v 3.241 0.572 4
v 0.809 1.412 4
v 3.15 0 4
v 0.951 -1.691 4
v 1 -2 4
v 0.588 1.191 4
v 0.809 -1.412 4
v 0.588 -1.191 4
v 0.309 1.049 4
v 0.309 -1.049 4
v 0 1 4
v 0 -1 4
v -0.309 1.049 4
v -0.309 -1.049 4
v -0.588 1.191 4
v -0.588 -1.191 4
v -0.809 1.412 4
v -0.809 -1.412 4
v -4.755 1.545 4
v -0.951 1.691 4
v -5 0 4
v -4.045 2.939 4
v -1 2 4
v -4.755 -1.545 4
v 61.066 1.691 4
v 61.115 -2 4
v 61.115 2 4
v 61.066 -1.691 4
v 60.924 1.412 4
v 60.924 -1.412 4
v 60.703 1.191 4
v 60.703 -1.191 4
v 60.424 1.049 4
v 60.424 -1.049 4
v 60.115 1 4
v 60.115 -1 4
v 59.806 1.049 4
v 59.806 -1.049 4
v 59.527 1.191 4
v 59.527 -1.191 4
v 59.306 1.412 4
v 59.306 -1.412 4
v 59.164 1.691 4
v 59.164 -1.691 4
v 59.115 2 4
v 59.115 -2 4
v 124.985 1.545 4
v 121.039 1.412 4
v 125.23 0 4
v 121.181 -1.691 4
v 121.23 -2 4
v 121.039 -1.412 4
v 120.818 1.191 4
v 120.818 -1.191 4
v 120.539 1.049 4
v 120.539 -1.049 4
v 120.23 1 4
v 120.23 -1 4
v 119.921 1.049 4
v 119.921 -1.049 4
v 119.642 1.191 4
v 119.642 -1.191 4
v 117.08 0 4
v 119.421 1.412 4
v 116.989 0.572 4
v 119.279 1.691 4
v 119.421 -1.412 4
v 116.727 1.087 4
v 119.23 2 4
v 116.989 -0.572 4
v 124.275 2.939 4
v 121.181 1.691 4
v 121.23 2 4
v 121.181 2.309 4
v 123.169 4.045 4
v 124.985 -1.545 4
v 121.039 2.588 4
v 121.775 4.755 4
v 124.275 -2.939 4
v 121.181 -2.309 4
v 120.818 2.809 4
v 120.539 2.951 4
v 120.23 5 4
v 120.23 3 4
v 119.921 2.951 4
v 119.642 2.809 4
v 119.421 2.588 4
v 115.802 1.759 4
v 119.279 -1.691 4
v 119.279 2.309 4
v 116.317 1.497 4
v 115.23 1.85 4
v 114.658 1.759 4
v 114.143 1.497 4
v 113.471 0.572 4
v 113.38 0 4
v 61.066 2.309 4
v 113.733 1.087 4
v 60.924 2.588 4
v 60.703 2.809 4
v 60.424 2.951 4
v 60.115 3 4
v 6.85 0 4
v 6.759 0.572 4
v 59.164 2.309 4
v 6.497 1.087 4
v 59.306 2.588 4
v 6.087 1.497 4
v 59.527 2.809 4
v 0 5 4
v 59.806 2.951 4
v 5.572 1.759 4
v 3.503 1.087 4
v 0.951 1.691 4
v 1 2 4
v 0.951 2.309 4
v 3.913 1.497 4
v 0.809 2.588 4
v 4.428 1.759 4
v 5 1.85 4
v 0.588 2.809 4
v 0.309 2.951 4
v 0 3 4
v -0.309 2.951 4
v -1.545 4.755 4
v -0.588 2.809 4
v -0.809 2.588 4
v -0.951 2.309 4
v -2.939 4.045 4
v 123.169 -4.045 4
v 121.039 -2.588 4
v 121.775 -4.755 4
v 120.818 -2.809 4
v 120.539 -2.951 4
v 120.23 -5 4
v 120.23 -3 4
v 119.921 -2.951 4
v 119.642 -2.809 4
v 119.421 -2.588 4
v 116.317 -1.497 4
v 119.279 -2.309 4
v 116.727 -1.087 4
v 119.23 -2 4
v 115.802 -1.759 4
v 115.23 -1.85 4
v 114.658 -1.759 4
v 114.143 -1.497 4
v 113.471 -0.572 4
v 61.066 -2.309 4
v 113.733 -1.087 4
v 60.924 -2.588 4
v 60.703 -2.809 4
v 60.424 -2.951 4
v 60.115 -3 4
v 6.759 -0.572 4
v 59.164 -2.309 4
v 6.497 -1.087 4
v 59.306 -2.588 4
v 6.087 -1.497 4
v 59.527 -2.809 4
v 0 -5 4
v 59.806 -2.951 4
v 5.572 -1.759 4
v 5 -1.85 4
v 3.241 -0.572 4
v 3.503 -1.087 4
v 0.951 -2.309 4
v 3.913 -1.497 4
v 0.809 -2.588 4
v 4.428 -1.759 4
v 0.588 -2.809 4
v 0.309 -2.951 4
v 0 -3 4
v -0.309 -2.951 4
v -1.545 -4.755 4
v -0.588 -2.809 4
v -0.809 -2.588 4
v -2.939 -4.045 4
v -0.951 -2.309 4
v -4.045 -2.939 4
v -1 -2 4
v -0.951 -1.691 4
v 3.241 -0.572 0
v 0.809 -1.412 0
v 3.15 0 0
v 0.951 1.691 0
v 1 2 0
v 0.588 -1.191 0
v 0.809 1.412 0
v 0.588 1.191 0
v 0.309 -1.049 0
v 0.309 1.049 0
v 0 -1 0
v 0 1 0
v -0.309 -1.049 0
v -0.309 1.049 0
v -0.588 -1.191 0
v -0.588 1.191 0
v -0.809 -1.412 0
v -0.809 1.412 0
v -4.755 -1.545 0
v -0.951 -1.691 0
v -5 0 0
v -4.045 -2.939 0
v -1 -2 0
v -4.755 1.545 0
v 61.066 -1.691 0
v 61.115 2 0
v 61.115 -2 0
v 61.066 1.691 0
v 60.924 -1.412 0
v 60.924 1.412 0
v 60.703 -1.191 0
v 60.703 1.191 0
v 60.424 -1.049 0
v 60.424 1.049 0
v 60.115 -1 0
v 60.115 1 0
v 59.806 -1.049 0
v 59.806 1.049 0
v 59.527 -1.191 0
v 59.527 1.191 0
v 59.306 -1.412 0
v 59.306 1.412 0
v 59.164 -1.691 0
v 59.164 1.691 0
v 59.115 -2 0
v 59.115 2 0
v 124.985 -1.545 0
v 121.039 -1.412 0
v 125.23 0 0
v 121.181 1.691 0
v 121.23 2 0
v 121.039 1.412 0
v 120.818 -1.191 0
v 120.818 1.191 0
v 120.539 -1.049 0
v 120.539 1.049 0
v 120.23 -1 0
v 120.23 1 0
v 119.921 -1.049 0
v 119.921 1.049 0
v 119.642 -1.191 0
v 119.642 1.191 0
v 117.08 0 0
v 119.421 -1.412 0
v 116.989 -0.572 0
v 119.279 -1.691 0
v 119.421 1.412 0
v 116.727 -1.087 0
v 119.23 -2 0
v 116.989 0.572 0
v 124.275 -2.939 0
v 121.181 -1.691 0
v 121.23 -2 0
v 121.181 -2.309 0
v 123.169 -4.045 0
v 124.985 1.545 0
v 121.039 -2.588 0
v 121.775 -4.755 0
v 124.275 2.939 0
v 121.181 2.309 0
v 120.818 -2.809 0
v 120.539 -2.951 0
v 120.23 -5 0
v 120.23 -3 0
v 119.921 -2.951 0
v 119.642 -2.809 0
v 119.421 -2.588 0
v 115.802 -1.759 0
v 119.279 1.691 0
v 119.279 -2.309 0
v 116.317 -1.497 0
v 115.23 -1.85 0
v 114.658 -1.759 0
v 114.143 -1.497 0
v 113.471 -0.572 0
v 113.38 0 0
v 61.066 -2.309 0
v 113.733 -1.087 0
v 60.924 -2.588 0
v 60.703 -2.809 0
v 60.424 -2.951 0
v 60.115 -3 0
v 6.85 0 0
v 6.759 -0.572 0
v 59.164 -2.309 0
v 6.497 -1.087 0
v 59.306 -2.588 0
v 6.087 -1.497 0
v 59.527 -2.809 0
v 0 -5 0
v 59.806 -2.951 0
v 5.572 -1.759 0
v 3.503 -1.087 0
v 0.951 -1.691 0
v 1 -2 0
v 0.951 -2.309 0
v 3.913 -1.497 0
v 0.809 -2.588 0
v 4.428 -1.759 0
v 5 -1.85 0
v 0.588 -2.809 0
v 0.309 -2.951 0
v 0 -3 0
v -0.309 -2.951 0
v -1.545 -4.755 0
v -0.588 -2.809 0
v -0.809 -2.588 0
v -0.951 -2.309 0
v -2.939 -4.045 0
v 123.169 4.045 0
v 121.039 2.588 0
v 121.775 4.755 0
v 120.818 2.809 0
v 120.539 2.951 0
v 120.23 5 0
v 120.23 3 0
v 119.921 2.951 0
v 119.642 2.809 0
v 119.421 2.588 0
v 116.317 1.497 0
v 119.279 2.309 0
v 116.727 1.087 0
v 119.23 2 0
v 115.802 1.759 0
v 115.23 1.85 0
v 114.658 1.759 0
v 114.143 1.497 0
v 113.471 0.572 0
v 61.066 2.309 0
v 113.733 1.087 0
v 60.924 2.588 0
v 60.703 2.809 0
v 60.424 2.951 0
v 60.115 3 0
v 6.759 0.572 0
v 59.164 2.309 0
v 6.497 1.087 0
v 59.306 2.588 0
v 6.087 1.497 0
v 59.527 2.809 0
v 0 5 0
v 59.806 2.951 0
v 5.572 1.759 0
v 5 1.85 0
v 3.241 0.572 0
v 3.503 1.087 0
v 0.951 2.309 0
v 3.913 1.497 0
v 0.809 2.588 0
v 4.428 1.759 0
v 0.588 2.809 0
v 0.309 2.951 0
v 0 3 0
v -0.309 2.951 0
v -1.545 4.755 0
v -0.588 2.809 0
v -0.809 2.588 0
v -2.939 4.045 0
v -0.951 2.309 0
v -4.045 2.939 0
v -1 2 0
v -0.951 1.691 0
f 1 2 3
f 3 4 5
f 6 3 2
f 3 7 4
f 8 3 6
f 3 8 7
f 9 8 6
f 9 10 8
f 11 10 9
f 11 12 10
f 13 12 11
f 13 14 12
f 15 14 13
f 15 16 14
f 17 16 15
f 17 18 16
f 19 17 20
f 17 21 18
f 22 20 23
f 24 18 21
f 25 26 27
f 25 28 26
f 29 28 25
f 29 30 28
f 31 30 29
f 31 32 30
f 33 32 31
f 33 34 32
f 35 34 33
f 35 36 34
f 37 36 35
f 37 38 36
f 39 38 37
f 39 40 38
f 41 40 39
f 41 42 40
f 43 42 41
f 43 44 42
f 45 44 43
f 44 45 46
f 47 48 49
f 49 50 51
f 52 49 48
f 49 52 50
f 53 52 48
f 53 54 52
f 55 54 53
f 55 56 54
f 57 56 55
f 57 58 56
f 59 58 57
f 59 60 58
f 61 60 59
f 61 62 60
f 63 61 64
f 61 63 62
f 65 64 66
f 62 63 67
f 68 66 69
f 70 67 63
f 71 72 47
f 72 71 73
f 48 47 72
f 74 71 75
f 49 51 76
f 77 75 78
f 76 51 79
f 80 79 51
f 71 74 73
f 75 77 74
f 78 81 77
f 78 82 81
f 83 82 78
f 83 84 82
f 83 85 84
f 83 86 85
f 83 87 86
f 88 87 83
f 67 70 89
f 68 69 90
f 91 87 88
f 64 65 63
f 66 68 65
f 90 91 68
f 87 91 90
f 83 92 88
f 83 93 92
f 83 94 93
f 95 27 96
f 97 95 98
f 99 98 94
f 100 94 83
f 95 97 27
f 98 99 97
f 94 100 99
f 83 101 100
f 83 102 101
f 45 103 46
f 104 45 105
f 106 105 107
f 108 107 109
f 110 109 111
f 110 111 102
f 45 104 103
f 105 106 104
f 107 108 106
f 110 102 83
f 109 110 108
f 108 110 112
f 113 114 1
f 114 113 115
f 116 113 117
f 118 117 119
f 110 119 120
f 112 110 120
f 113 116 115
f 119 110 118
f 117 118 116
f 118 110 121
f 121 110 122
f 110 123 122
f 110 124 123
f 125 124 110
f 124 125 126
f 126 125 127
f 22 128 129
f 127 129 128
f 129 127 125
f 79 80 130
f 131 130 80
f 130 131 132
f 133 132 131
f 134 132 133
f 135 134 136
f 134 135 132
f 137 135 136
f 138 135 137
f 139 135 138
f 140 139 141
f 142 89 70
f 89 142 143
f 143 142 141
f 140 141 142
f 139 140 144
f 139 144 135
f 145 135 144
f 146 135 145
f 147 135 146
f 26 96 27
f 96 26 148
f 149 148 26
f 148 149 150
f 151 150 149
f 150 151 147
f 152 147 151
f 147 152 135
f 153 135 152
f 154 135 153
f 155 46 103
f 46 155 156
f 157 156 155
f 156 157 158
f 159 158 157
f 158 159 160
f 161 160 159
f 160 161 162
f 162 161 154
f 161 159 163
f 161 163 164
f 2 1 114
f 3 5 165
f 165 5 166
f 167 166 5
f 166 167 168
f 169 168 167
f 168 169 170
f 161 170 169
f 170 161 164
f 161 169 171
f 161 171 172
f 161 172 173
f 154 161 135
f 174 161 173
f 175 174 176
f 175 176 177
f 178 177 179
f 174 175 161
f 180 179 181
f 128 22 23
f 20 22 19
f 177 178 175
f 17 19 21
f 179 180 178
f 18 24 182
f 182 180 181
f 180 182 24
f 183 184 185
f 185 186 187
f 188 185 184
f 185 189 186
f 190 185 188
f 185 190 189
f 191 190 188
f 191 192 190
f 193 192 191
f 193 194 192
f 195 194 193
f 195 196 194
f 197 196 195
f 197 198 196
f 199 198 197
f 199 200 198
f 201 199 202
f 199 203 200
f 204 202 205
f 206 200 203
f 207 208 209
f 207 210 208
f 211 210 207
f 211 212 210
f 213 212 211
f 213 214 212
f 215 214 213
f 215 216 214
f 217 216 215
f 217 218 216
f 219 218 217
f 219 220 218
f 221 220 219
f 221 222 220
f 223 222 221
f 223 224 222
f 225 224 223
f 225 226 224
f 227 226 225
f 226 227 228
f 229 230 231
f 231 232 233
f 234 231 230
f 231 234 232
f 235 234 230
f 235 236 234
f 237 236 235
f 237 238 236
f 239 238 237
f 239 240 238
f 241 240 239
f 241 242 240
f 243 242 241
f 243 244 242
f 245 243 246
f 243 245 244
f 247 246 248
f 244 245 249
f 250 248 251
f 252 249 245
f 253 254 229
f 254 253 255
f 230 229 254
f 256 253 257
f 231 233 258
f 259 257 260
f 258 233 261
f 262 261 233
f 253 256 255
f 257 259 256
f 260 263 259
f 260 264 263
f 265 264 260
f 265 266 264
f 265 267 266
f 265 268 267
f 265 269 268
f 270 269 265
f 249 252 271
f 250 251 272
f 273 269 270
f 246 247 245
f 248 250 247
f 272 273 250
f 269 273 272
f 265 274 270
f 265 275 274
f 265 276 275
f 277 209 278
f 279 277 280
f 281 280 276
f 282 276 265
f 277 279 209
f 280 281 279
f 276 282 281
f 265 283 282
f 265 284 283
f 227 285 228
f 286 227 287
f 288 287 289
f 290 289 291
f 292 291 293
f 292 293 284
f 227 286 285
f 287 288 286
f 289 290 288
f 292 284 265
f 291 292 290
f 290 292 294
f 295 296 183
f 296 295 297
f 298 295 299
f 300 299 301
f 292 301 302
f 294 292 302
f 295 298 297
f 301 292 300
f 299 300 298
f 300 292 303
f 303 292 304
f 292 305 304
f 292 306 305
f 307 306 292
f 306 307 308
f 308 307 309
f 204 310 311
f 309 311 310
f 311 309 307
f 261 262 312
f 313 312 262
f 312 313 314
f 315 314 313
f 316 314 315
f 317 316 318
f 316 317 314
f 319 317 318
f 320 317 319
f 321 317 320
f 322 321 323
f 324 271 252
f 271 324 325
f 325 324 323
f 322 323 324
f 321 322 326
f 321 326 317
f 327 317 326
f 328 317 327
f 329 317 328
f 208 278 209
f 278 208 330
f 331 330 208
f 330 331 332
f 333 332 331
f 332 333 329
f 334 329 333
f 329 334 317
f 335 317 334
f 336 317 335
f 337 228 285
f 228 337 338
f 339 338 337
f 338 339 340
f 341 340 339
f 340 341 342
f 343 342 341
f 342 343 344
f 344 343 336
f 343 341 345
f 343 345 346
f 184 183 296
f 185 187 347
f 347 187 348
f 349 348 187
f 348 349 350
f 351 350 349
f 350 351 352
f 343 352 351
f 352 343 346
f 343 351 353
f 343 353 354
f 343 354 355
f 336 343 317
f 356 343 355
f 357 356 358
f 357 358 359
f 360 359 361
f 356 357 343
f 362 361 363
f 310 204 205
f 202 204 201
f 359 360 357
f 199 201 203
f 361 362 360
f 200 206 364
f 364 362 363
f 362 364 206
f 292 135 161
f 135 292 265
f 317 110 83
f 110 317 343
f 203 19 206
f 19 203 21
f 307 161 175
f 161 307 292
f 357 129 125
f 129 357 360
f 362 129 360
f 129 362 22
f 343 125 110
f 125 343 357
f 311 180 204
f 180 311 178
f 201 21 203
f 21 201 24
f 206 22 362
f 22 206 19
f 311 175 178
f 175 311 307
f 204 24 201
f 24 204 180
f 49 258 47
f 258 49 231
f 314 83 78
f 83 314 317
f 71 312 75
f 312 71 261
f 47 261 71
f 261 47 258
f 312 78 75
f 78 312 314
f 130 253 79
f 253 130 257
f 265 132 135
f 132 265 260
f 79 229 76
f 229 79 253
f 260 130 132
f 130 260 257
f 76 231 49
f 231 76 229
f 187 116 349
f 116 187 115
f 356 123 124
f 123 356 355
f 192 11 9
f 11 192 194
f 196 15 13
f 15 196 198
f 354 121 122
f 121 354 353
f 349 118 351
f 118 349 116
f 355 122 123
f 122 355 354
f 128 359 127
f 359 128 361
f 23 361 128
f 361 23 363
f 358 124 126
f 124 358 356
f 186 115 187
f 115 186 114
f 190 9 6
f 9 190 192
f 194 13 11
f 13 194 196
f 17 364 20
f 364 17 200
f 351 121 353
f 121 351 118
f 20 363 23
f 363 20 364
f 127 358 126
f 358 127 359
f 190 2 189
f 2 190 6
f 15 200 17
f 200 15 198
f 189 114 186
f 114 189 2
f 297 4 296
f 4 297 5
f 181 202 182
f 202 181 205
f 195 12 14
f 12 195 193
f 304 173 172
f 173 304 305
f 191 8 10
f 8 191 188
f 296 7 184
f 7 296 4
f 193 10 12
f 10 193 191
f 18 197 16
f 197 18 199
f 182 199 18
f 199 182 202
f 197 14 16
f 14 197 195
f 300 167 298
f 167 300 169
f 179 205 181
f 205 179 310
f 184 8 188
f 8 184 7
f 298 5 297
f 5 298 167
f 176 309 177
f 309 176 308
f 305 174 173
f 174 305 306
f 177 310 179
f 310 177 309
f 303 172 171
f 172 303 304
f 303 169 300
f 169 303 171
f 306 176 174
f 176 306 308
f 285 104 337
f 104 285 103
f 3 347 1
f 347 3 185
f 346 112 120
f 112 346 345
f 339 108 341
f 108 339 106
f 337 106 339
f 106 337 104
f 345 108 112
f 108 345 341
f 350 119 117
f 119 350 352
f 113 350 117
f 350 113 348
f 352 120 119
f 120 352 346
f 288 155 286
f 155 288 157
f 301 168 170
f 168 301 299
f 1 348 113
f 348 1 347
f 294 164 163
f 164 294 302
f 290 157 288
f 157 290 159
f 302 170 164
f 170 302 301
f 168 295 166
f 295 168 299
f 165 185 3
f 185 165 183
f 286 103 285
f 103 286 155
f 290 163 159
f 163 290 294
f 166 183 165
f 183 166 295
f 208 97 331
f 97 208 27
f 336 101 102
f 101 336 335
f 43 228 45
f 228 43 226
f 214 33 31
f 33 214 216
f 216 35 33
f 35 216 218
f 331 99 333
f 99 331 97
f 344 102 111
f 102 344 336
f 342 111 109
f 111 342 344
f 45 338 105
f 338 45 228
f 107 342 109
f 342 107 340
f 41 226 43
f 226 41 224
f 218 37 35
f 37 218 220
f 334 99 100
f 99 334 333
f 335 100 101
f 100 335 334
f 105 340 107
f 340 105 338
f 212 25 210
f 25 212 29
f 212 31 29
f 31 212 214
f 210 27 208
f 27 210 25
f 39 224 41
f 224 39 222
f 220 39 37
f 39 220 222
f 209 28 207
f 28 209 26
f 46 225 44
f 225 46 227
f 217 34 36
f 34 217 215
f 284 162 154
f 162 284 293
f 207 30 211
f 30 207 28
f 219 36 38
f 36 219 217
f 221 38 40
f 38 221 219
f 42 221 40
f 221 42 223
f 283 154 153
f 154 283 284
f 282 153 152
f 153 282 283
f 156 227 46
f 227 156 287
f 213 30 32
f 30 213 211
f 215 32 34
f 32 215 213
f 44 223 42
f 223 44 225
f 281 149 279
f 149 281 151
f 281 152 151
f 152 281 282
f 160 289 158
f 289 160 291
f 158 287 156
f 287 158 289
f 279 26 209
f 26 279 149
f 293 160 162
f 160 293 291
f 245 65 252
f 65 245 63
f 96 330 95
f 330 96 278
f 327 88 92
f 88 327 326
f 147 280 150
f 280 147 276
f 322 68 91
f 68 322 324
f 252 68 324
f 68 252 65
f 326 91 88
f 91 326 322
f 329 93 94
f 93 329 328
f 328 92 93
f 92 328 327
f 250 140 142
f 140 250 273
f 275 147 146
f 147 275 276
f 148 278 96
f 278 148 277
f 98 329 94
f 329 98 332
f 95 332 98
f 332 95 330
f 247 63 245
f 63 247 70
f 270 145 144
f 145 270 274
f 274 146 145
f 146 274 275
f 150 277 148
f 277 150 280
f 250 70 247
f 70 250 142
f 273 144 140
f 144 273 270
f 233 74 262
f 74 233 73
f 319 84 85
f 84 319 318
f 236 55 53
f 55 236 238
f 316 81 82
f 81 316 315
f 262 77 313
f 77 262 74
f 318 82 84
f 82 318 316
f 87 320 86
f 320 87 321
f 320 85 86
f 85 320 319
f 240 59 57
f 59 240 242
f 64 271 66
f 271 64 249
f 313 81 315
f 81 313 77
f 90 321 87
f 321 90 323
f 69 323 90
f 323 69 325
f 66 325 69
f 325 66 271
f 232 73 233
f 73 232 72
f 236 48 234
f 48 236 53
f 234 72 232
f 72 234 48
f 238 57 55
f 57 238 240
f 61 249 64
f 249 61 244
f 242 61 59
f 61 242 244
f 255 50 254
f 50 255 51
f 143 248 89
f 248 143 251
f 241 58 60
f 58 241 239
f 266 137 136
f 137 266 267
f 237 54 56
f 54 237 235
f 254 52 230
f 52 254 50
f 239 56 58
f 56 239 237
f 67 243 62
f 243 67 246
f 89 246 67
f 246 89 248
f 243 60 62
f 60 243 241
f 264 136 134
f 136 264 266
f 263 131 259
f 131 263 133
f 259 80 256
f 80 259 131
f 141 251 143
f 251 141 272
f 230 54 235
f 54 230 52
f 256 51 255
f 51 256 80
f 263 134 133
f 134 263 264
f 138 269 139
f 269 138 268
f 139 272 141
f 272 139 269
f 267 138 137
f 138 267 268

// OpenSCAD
$fn=20;

isx = 1.5;       // Inital Spacing X


/* Settings */
stfs_tolerance = 1; // Tolerance (screw head is large)
stfs_between_space = 25; // Spacing between
hang_holes = 2;   // Diameter of holes for the wall hanging string
hang_hole_interspace = 4; // Spacing between hanging holes
hang_to_stfs_space = 5; // Spacing between the hanging and stfs holes

/* STFS Dimentions */
stfs_holes = 2.7;   // Diameter of stovetop firestop retaining screws
stfs_b_dia = 85.23; // Diameter of stovetop firestop body
stfs_b_h = 55;      // Approx height of stovetop firestop body

/* Calc */
stfs_hole_dia = stfs_holes+stfs_tolerance; // Alignment Pin Diamenter
hang_pin_dia = hang_holes; // Probe Pin Diameter

/* Hole Position */
ah1 = 0;
stfs_1_x = ah1 + hang_to_stfs_space;

stfs_2_x = stfs_1_x + stfs_b_dia + stfs_between_space;
ah2 = stfs_2_x + hang_to_stfs_space;

/* base */
boxx = ah1 + ah2;
boxy = 10;
boxh = 4;

/* 3D Model */
difference() {
union() {
    translate([0  , -boxy/2  , 0])
        cube([boxx,boxy,boxh]);
    translate([0  , 0  , 0])
        cylinder(r=boxy/2, h=boxh);
    translate([boxx  , 0  , 0])
        cylinder(r=boxy/2, h=boxh);
}

/* Align Hole 1 */
#translate([ah1 ,  hang_hole_interspace/2 , -1])
    cylinder(r=hang_holes/2, h=boxh+2);
#translate([ah1 , -hang_hole_interspace/2 , -1])
    cylinder(r=hang_holes/2, h=boxh+2);

/* STFS 1 */
#translate([stfs_1_x , 0  , -1])
    cylinder(r=stfs_hole_dia/2, h=boxh+2);
%translate([stfs_1_x , 0  , -stfs_b_h])
    cylinder(r=stfs_b_dia/2, h=stfs_b_h);

/* Align Hole center */
#translate([boxx/2 ,  hang_hole_interspace/2 , -1])
    cylinder(r=hang_holes/2, h=boxh+2);
#translate([boxx/2 , -hang_hole_interspace/2 , -1])
    cylinder(r=hang_holes/2, h=boxh+2);

/* STFS 2 */
#translate([stfs_2_x , 0  , -1])
    cylinder(r=stfs_hole_dia/2, h=boxh+2);
%translate([stfs_2_x , 0  , -stfs_b_h])
    cylinder(r=stfs_b_dia/2, h=stfs_b_h);


/* Align Hole 2 */
#translate([ah2 ,  hang_hole_interspace/2 , -1])
    cylinder(r=hang_holes/2, h=boxh+2);
#translate([ah2 , -hang_hole_interspace/2 , -1])
    cylinder(r=hang_holes/2, h=boxh+2);
}
